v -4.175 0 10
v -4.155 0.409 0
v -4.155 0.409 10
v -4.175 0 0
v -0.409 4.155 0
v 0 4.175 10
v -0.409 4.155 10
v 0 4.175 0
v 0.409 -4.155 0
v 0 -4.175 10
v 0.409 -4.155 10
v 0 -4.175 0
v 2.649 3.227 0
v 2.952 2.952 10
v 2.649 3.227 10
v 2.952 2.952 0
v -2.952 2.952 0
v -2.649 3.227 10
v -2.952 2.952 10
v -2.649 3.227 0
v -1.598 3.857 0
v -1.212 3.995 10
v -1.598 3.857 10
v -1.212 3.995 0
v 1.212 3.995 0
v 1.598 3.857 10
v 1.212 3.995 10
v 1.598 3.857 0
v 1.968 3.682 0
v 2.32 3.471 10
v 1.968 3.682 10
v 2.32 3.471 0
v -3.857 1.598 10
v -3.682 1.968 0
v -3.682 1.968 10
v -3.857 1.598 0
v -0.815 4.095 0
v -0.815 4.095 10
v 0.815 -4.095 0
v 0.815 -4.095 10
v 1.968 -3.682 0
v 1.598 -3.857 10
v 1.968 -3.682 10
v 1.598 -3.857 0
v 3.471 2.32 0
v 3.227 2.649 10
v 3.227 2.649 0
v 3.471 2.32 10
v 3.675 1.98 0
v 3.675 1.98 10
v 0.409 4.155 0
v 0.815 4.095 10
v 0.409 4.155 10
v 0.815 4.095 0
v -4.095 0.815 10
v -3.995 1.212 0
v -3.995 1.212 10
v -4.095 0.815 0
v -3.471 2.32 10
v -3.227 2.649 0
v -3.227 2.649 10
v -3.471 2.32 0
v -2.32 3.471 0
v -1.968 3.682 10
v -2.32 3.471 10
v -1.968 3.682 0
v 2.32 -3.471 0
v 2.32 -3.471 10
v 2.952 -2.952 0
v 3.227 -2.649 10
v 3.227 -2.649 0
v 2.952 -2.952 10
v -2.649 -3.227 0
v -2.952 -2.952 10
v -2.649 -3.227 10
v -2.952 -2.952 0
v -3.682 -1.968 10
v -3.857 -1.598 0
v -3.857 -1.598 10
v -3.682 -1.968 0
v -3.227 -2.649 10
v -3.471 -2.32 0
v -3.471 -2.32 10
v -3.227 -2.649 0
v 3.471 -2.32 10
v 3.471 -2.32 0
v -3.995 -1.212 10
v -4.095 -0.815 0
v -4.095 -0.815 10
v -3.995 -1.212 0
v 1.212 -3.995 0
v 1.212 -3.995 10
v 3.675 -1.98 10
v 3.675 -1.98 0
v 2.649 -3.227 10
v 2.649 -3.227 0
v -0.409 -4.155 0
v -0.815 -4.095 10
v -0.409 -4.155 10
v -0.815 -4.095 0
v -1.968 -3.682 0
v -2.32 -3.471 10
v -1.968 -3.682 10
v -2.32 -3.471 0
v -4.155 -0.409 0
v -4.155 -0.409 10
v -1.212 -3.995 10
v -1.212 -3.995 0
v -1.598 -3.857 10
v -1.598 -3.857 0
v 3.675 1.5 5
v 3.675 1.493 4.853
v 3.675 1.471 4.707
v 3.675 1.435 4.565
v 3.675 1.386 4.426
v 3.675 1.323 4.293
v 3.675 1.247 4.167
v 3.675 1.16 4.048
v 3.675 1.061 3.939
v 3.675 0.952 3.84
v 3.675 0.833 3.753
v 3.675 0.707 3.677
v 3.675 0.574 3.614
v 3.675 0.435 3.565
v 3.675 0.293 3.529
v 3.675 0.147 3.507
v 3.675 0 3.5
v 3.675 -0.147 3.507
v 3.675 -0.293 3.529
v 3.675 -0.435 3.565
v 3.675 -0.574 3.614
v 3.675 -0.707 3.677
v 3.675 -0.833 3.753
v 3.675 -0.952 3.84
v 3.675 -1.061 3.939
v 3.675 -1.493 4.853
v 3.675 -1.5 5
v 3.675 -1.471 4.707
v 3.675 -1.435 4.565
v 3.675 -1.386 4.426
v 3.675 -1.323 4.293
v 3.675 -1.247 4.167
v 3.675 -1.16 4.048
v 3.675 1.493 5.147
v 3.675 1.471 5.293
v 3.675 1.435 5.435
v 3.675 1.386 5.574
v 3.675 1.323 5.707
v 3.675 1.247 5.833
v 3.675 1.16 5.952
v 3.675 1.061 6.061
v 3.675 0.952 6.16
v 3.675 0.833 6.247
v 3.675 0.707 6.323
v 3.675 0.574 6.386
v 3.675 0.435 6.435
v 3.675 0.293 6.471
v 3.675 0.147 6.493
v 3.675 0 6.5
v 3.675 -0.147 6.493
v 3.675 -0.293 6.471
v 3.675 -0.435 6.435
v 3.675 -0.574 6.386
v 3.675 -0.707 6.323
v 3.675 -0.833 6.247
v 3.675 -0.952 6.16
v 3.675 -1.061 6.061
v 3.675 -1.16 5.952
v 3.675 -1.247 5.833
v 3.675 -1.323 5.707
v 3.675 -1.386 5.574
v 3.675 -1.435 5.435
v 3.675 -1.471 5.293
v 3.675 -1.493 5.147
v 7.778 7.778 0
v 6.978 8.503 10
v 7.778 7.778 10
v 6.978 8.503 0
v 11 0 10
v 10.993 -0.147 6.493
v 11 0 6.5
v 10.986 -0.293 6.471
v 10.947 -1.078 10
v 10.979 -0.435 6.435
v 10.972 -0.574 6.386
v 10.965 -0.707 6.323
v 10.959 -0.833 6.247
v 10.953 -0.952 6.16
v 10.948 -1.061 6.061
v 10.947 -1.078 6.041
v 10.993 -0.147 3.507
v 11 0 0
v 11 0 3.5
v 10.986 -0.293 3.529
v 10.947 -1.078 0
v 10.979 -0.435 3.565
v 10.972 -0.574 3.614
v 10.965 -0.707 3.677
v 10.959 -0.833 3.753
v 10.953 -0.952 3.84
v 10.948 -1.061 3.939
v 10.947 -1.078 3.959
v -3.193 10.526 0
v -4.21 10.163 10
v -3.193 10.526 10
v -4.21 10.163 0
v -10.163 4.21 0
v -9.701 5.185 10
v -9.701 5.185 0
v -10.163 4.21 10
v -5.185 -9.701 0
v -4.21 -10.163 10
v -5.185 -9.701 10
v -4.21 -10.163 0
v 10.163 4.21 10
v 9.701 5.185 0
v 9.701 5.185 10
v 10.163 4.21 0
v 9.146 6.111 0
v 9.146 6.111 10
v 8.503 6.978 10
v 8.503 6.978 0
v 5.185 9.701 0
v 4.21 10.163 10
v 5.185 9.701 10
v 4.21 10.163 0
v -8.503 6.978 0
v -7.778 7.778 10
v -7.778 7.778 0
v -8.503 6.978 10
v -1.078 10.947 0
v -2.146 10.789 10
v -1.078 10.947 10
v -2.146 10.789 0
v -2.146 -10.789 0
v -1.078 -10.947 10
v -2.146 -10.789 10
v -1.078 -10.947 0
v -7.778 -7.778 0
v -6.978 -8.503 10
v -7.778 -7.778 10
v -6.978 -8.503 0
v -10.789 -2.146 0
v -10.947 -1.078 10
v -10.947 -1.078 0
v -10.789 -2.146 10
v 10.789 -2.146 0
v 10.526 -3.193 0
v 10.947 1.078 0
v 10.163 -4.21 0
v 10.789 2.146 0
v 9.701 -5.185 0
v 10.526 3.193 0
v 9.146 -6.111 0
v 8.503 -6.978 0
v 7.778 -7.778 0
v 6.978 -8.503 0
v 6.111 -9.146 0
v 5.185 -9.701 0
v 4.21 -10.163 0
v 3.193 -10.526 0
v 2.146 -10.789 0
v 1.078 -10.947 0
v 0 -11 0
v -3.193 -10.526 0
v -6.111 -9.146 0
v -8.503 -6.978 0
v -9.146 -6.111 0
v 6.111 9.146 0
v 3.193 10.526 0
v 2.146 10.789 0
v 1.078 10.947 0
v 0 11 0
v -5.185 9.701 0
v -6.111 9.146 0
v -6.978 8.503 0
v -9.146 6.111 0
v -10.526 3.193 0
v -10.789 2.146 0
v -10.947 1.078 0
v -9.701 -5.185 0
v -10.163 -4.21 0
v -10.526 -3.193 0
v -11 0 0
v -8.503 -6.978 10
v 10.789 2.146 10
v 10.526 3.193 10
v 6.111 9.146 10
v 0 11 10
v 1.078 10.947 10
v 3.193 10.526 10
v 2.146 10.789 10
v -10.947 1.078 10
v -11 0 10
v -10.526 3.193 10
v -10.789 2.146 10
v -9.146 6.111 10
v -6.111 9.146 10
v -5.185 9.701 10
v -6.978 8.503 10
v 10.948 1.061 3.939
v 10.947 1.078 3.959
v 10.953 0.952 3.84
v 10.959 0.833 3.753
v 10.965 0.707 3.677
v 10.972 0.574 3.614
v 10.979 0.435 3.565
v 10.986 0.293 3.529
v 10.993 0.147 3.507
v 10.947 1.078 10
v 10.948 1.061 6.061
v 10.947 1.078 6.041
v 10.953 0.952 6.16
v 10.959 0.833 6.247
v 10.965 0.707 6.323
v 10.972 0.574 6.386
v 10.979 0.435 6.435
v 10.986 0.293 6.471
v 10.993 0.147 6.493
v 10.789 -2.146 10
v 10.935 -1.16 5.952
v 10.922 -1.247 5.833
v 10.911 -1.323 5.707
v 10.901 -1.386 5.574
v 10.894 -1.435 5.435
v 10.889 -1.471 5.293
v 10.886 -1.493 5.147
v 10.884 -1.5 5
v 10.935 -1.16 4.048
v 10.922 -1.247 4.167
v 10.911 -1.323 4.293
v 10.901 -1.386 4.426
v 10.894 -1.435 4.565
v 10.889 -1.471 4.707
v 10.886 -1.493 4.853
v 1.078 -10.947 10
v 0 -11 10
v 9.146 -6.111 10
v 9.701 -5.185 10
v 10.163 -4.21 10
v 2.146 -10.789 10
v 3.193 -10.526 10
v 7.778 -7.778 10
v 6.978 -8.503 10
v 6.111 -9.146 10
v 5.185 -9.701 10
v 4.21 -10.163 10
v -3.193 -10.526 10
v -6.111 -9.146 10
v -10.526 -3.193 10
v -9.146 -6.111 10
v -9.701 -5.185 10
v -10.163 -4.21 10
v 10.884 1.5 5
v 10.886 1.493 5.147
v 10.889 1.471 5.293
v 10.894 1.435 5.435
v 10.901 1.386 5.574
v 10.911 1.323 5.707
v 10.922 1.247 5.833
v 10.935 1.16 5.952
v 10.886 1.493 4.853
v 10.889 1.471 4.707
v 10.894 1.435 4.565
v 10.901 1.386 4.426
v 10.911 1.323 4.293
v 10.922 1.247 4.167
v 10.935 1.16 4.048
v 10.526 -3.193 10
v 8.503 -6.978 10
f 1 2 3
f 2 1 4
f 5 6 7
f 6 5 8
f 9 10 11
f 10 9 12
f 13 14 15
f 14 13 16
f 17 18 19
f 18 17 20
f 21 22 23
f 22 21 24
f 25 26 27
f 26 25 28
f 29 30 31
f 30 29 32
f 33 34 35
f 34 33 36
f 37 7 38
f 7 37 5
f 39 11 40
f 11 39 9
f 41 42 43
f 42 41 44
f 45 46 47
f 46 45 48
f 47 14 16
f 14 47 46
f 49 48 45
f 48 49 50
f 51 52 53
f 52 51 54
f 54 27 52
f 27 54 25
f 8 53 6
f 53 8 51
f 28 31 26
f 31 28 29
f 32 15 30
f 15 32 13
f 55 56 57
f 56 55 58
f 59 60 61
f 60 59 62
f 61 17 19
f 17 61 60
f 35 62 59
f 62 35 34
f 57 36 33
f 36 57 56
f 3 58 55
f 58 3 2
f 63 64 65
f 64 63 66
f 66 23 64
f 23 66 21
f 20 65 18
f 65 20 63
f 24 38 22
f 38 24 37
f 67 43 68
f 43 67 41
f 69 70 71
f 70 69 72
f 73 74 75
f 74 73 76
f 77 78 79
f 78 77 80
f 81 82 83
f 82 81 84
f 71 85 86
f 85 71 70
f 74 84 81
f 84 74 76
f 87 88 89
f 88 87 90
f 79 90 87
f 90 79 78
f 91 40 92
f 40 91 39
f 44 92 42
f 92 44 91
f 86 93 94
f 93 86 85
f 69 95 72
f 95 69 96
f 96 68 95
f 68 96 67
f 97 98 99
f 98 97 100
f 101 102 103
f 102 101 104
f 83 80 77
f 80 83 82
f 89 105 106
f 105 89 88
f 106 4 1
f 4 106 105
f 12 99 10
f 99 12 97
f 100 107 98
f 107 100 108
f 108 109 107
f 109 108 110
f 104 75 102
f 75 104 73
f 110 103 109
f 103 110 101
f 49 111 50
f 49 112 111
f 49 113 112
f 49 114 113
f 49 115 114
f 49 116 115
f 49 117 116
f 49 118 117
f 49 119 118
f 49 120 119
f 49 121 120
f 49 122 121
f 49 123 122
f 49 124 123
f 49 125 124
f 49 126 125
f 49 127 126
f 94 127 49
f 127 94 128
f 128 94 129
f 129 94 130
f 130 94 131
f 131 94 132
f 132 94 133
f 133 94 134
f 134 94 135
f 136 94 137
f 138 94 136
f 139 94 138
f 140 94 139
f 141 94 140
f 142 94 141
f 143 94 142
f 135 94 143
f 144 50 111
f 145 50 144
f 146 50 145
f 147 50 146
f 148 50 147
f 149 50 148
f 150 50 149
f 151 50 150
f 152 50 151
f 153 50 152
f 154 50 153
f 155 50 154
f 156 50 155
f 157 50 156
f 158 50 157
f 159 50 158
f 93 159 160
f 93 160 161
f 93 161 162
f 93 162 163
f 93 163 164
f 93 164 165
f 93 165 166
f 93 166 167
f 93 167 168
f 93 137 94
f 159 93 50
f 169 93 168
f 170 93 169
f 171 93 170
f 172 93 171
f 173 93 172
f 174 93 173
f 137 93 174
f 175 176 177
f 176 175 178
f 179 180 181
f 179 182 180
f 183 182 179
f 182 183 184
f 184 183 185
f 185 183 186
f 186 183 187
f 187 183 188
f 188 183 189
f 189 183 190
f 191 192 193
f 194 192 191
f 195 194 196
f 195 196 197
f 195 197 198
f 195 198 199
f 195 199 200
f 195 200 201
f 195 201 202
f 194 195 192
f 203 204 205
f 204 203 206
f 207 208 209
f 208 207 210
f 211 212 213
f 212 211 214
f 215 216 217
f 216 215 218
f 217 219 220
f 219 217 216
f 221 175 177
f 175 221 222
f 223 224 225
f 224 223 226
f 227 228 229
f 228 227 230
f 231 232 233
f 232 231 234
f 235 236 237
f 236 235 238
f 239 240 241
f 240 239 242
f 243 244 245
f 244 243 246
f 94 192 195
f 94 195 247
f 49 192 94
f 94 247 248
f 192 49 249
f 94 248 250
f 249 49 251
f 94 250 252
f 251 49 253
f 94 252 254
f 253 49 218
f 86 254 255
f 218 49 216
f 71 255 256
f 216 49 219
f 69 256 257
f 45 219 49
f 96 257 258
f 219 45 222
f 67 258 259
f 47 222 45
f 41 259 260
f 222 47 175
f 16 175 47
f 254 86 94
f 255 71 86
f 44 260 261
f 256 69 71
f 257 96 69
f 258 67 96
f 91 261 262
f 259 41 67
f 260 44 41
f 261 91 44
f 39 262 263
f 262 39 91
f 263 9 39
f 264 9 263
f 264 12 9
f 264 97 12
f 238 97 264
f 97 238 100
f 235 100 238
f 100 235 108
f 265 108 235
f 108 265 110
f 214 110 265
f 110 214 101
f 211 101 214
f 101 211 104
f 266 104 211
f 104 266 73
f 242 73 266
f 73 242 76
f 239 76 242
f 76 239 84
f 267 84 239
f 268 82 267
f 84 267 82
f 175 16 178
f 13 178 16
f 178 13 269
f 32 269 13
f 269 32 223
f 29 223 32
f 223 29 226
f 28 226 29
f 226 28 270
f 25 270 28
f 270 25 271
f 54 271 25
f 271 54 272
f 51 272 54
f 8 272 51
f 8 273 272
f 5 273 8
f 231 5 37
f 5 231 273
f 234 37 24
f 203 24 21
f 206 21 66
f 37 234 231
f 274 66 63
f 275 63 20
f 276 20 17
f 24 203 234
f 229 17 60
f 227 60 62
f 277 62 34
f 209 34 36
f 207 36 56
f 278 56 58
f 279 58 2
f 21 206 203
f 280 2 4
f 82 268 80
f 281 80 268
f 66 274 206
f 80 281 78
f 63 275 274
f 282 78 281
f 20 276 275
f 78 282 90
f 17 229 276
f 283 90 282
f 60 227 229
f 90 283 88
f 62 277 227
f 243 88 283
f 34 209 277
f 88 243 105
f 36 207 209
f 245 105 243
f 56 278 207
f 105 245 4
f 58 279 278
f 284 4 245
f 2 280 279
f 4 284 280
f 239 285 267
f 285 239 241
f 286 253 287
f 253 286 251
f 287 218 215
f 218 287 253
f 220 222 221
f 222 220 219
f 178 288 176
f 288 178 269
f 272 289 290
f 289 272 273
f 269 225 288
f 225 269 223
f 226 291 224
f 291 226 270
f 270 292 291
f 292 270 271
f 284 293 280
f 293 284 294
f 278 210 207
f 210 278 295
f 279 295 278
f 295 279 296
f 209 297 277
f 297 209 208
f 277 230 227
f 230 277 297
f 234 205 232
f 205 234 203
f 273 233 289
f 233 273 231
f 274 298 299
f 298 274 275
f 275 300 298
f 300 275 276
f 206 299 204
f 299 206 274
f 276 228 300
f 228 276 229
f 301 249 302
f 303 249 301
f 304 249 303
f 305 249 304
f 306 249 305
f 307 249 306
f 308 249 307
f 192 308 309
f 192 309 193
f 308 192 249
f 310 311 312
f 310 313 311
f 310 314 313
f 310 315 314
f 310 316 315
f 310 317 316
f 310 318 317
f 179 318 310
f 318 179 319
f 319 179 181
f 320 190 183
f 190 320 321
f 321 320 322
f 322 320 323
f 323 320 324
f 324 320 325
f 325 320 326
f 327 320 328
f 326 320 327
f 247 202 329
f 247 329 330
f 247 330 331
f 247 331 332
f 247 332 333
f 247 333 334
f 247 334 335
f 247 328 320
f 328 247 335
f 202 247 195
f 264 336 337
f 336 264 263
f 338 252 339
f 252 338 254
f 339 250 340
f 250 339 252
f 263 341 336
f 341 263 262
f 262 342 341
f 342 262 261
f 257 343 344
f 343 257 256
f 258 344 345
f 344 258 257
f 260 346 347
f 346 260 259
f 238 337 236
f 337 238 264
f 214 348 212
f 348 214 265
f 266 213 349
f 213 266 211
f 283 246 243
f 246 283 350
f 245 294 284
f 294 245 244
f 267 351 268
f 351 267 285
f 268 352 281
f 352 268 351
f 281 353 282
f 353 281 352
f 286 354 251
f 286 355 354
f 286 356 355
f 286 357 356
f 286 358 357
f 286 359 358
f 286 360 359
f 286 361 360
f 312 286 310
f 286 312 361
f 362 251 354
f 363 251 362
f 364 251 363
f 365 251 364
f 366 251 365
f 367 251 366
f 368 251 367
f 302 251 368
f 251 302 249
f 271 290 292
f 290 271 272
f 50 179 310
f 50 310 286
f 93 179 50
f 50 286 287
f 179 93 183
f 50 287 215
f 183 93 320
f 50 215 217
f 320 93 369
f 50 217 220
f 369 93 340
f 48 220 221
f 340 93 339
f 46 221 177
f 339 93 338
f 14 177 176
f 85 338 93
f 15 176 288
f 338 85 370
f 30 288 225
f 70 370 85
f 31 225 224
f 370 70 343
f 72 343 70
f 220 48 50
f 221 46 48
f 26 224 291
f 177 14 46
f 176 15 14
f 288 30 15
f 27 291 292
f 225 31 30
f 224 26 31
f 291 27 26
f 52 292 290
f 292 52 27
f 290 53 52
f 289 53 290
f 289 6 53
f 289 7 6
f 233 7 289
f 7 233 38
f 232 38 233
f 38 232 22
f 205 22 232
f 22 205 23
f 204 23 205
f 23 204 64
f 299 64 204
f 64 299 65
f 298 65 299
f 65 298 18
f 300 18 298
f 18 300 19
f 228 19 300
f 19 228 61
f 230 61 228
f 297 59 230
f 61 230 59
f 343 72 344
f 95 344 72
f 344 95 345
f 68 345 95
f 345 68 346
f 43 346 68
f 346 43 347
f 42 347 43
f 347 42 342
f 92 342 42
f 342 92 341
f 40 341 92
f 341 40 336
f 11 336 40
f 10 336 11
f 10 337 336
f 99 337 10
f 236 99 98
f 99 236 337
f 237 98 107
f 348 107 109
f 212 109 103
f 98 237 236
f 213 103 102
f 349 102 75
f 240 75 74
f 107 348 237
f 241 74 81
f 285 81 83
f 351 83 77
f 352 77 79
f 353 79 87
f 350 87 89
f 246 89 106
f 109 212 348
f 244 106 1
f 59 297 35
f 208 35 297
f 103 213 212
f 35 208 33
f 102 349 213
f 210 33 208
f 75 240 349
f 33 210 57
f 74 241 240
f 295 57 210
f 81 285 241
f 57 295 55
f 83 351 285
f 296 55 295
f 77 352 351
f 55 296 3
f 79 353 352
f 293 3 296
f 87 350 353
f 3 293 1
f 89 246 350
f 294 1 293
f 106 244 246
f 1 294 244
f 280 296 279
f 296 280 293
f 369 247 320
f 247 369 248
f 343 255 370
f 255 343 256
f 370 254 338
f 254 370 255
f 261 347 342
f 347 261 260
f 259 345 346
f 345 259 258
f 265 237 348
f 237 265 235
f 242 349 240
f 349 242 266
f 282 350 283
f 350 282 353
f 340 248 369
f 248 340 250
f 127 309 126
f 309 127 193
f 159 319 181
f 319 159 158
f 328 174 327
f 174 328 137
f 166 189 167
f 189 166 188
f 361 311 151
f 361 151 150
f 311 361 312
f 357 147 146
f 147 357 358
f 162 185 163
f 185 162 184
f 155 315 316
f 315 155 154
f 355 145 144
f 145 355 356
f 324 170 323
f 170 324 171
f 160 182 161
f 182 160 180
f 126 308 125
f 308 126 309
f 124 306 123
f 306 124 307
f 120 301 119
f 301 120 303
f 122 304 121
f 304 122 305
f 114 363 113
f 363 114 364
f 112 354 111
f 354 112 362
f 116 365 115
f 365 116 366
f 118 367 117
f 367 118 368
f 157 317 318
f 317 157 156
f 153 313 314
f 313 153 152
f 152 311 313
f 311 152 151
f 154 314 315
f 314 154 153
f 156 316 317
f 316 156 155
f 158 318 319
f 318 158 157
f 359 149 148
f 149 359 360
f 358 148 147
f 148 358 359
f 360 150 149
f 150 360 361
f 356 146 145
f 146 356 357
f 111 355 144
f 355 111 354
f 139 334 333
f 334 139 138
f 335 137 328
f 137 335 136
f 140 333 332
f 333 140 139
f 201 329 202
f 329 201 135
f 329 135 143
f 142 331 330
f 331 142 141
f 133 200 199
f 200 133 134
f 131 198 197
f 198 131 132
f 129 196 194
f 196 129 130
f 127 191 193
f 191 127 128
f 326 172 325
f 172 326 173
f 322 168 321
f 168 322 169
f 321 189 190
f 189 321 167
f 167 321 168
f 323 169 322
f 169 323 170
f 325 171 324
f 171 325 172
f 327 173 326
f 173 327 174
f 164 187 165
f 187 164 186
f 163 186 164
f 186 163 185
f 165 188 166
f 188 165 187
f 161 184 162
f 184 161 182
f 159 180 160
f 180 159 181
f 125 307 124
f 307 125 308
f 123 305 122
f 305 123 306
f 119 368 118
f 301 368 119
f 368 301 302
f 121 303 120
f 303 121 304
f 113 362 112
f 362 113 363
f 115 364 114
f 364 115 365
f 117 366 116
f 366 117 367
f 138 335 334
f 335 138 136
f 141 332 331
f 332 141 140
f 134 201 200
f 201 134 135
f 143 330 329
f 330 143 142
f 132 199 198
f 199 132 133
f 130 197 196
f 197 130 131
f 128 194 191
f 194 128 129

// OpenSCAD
// Gen-DC — shaft collar with D-flat bore (set screw bears on the flat); print x4
include <parameters.scad>;
$fn = 64;
// D-flat keyed bore: flat faces +X (angle 0 = magnet pocket 0 = index notch)
module dflat_bore(h) {
    intersection() {
        cylinder(d=shaft_bore, h=h);
        translate([-shaft_bore, -shaft_bore, 0]) cube([shaft_bore + dflat_x, 2*shaft_bore, h]);
    }
}

od = 22; h = collar_h; set_d = 3.0;
difference() {
    cylinder(d=od, h=h);
    translate([0, 0, -0.1]) dflat_bore(h + 0.2);
    translate([0, 0, h/2]) rotate([0, 90, 0]) cylinder(d=set_d, h=od);
}
